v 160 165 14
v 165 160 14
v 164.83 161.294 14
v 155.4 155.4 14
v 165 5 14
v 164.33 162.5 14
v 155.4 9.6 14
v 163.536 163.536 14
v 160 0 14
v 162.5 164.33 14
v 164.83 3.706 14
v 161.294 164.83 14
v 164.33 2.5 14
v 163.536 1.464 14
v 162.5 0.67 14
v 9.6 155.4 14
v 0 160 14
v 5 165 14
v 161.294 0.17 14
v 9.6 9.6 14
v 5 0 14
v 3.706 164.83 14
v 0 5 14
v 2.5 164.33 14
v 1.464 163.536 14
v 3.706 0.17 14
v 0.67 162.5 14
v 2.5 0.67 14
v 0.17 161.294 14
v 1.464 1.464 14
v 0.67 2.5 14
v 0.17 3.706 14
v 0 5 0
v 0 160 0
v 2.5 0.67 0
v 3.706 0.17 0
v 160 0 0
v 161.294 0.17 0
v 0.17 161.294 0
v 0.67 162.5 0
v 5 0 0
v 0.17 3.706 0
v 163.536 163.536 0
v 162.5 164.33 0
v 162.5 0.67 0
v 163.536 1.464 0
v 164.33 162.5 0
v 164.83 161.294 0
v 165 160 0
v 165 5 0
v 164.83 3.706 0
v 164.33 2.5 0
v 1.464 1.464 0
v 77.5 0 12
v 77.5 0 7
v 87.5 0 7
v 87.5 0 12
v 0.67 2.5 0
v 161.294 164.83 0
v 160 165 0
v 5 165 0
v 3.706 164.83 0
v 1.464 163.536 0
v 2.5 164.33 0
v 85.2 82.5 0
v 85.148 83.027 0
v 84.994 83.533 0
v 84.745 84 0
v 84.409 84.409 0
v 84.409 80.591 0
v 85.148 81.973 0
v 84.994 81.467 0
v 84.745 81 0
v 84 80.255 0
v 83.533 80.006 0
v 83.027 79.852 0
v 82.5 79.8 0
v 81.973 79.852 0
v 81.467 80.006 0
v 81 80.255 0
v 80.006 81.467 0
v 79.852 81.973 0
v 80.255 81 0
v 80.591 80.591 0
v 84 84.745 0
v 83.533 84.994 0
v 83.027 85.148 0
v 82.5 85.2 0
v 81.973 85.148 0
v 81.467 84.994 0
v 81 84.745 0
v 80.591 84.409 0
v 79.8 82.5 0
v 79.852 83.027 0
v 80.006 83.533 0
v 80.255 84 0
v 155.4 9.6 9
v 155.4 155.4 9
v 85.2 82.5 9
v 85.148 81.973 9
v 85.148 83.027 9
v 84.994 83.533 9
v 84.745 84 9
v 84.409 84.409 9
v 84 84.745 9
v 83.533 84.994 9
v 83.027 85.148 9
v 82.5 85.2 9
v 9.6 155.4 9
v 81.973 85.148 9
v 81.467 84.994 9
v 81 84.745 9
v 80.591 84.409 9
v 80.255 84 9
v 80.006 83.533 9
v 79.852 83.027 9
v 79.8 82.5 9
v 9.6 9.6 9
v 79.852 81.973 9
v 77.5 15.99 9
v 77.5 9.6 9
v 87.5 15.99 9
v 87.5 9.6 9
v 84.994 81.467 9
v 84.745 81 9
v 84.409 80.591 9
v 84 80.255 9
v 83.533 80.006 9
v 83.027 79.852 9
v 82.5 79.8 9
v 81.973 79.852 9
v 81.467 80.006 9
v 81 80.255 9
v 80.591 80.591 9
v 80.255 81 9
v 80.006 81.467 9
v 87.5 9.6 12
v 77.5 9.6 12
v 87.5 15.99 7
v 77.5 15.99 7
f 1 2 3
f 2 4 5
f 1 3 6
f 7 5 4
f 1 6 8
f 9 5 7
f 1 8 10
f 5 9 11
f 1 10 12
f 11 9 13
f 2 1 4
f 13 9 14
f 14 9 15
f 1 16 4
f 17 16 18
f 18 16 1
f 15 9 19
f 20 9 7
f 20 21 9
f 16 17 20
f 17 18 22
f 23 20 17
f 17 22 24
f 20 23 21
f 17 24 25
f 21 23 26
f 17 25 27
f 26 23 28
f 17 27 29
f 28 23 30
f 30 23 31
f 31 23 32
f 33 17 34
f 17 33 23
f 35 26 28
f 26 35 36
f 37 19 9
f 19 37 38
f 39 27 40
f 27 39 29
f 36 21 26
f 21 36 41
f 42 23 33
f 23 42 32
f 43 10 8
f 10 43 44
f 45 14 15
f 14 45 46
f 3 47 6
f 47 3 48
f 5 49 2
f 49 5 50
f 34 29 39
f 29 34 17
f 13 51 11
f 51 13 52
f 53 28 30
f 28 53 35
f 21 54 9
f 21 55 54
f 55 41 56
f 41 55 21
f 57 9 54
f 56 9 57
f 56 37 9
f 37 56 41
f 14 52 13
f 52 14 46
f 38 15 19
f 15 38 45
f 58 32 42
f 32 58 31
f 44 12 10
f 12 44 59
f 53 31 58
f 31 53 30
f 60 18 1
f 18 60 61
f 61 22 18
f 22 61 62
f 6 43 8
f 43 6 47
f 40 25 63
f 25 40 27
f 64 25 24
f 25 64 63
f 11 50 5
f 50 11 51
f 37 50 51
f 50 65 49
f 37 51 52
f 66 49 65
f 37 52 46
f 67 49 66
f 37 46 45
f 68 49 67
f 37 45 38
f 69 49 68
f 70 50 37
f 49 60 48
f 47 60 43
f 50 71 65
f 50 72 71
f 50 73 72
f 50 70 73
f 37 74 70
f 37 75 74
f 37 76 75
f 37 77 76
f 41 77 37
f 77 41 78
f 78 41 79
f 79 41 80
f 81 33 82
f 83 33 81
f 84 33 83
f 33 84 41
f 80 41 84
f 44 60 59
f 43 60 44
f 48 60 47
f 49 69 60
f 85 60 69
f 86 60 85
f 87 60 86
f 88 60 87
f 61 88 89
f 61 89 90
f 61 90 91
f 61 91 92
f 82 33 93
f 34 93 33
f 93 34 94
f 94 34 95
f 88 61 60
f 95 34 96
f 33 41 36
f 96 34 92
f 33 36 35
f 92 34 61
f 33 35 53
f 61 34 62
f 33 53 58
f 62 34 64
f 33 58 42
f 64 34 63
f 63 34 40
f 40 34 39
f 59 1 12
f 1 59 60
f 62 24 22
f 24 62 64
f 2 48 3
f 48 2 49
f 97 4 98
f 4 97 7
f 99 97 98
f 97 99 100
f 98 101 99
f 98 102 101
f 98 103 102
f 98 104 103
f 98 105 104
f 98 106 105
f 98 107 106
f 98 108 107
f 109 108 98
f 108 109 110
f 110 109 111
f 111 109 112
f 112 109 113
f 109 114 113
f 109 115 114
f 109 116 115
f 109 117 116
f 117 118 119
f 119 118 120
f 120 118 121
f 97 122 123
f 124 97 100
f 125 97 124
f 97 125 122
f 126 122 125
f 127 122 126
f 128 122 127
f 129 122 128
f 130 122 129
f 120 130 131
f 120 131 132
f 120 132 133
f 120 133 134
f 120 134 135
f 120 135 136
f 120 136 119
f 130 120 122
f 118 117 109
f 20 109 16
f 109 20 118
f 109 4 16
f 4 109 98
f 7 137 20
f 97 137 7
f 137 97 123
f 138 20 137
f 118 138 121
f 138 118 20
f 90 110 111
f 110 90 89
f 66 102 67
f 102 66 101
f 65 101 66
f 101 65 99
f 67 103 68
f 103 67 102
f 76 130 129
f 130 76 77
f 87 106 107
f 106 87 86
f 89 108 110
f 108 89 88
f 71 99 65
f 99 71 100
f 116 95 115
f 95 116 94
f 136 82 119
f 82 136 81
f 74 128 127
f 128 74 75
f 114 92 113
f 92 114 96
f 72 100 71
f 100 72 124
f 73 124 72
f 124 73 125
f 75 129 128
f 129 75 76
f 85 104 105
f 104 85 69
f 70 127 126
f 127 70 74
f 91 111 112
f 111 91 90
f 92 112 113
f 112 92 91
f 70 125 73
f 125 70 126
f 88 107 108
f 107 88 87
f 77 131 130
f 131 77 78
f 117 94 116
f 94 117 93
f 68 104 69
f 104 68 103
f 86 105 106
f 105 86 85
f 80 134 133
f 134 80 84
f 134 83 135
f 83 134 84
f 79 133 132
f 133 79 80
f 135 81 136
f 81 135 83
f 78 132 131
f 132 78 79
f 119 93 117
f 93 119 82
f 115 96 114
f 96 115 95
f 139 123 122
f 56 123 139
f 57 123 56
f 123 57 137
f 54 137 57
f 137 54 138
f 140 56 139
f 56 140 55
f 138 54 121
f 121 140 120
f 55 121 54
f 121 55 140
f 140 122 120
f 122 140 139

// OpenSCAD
// file: 00_parameters.scad
// TenderCells DoorCell V1 shared parameters
// Units: millimeters

overall_w = 438;
overall_h = 368;
frame_depth = 56;

clear_w = 242;
clear_h = 312;

rail_thick = 32;
jamb_w = 48;
motor_jamb_w = 78;

// Printability targets
target_bed_xy = 220;
comfortable_part_max = 180;

// Modular frame split dimensions
top_seg_len = overall_w / 3;
bottom_seg_len = overall_w / 3;
left_jamb_seg_h = overall_h / 2;
right_lower_h = 118;
right_motor_h = 156;
right_upper_h = overall_h - right_lower_h - right_motor_h;

// Low-cost electronics envelope used by DoorCell V1.4.
// These dimensions are based on common generic modules, not a custom PCB.
esp32_board = [58, 31, 8];
drv8871_board = [31, 26, 7];
current_sensor_board = [26, 22, 7];
lm2596_board = [44, 22, 14];
inline_fuse_body = [45, 15, 14];
cn3065_board = [44, 24, 8];
electronics_clearance = 1.5;
controller_wall = 3;
controller_box_w = 170;
controller_box_h = 115;
controller_box_d = 46;
controller_lid_insert_offset = 11;
controller_m12_gland_d = 12.8;
controller_m10_gland_d = 10.6;
controller_m8_gland_d = 8.4;
controller_button_d = 16.2;

// Brass heat-set/push-in insert features.
insert_post_d = 8.0;
insert_post_h = 8.0;
insert_pilot_d = 4.6;
insert_pilot_depth = 6.5;
hold_down_screw_clearance = 3.4;

// Motor envelope for common 25GA/JGA25-370 gearmotors with optional encoder.
motor_body_d = 25.0;
motor_body_clearance_d = 27.2;
motor_body_len = 65;
motor_encoder_clearance = 16;
motor_mount_plate = [72, 92, 12];
motor_mount_cradle = [54, 74, 28];

// Optional solar add-on.
solar_panel_w = 145;
solar_panel_h = 145;
solar_panel_t = 4.0;
solar_panel_frame_border = 10;
solar_panel_frame_w = solar_panel_w + 2*solar_panel_frame_border;
solar_panel_frame_h = solar_panel_h + 2*solar_panel_frame_border;
solar_panel_back_depth = 14;
solar_panel_lip_overlap = 3;
solar_ball_d = 22;
solar_ball_socket_clearance = 0.45;
solar_mount_m5 = 5.4;

// Tongue-and-groove frame joints
// Fit target: common FDM printers with PETG/ASA.
// Clearance is per side, so sockets add 2x this value.
tongue_len = 18;
tongue_w = 22;
tongue_z = 10;
tongue_clearance_side = 0.25;
tongue_socket_depth_extra = 0.60;

door_w = 270;
door_h = 326;
door_t = 8;

track_gap = 11;
track_depth = 12;

// Rack-and-pinion drive
// Metric module gear math:
// circular_pitch = PI * module
// pitch_diameter = module * tooth_count
// outside_diameter = module * (tooth_count + 2)
// root_diameter = module * (tooth_count - 2.5)
gear_module = 2.0;
pressure_angle = 20;
gear_backlash = 0.20; // mm removed from rack tooth thickness at pitch line

pinion_teeth = 16;
pinion_pitch_d = gear_module * pinion_teeth;
pinion_pitch_radius = pinion_pitch_d / 2;
pinion_outer_d = gear_module * (pinion_teeth + 2);
pinion_outer_radius = pinion_outer_d / 2;
pinion_root_d = gear_module * (pinion_teeth - 2.5);
pinion_root_radius = pinion_root_d / 2;
pinion_thick = 12;
shaft_d = 6.2;

rack_tooth_count = 15;
rack_circular_pitch = 3.141592653589793 * gear_module;
rack_len = rack_circular_pitch * rack_tooth_count;
rack_w = 18;
rack_t = 6;
rack_addendum = gear_module;
rack_dedendum = 1.25 * gear_module;
rack_tooth_h = rack_addendum + rack_dedendum;
rack_pitch_line_z = rack_dedendum;
rack_tooth_pitch_thickness = rack_circular_pitch / 2 - gear_backlash;
rack_tooth_top_w = rack_tooth_pitch_thickness - 2 * rack_addendum * tan(pressure_angle);
rack_tooth_root_w = rack_tooth_pitch_thickness + 2 * rack_dedendum * tan(pressure_angle);

screw_m3 = 3.4;
screw_m4 = 4.5;
insert_m3 = 4.6;

eps = 0.01;

module rounded_box(size=[10,10,10], r=2) {
  hull() {
    translate([r,r,0]) cylinder(h=size[2], r=r, $fn=24);
    translate([size[0]-r,r,0]) cylinder(h=size[2], r=r, $fn=24);
    translate([r,size[1]-r,0]) cylinder(h=size[2], r=r, $fn=24);
    translate([size[0]-r,size[1]-r,0]) cylinder(h=size[2], r=r, $fn=24);
  }
}

module m3_clearance_hole(h=20) {
  cylinder(h=h, d=screw_m3, $fn=24);
}

module m4_clearance_hole(h=20) {
  cylinder(h=h, d=screw_m4, $fn=24);
}

module heat_insert_hole(h=6) {
  cylinder(h=h, d=insert_m3, $fn=24);
}

module heat_insert_post(h=insert_post_h, d=insert_post_d) {
  difference() {
    cylinder(h=h, d=d, $fn=32);
    translate([0,0,h-insert_pilot_depth+eps])
      cylinder(h=insert_pilot_depth+eps, d=insert_pilot_d, $fn=24);
  }
}

module m3_hold_down_slot(length=10, h=4) {
  hull() {
    translate([-length/2,0,0]) cylinder(h=h, d=hold_down_screw_clearance, $fn=20);
    translate([ length/2,0,0]) cylinder(h=h, d=hold_down_screw_clearance, $fn=20);
  }
}

module rail_channel(length=100) {
  cube([length, track_gap, track_depth]);
}

module frame_tongue_x() {
  rounded_box([tongue_len, tongue_w, tongue_z], r=1.5);
}

module frame_socket_x() {
  cube([
    tongue_len + tongue_socket_depth_extra,
    tongue_w + 2*tongue_clearance_side,
    tongue_z + 2*tongue_clearance_side
  ]);
}

module frame_tongue_y() {
  rounded_box([tongue_w, tongue_len, tongue_z], r=1.5);
}

module frame_socket_y() {
  cube([
    tongue_w + 2*tongue_clearance_side,
    tongue_len + tongue_socket_depth_extra,
    tongue_z + 2*tongue_clearance_side
  ]);
}

module rack_teeth(len=rack_len) {
  teeth = floor(len / rack_circular_pitch);
  for (i=[0:teeth-1]) {
    center = i*rack_circular_pitch + rack_circular_pitch/2;
    translate([0, 0, rack_t-0.20])
      linear_extrude(height=rack_w)
        polygon(points=[
          [center - rack_tooth_root_w/2, 0],
          [center + rack_tooth_root_w/2, 0],
          [center + rack_tooth_top_w/2, rack_tooth_h],
          [center - rack_tooth_top_w/2, rack_tooth_h]
        ]);
  }
}

function polar_point(r, a) = [r * cos(a), r * sin(a)];
// main file
include <00_parameters.scad>

outer_w = solar_panel_frame_w;
outer_h = solar_panel_frame_h;
tray_d = solar_panel_back_depth;
panel_clearance = 0.8;

difference() {
  union() {
    rounded_box([outer_w, outer_h, tray_d], r=5);

    // Rear reinforced pad for the ball socket clamp.
    translate([outer_w/2-24, outer_h/2-24, 0])
      rounded_box([48, 48, 8], r=4);

    // Heat-set insert bosses for the front bezel screws.
    for (x=[12, outer_w-12], y=[12, outer_h-12]) {
      translate([x,y,tray_d-insert_post_h])
        heat_insert_post();
    }
  }

  // Shallow 145 mm panel pocket. The front bezel retains the panel.
  translate([
    solar_panel_frame_border - panel_clearance/2,
    solar_panel_frame_border - panel_clearance/2,
    tray_d - solar_panel_t - 1.0
  ])
    cube([
      solar_panel_w + panel_clearance,
      solar_panel_h + panel_clearance,
      solar_panel_t + 2
    ]);

  // Rear center M5 through-hole for the panel-side ball socket.
  translate([outer_w/2, outer_h/2, -eps])
    cylinder(h=tray_d+10, d=solar_mount_m5, $fn=32);

  // Solar panel lead exit channel.
  translate([outer_w/2-5, -eps, tray_d-7])
    cube([10, solar_panel_frame_border+6, 5]);
}
